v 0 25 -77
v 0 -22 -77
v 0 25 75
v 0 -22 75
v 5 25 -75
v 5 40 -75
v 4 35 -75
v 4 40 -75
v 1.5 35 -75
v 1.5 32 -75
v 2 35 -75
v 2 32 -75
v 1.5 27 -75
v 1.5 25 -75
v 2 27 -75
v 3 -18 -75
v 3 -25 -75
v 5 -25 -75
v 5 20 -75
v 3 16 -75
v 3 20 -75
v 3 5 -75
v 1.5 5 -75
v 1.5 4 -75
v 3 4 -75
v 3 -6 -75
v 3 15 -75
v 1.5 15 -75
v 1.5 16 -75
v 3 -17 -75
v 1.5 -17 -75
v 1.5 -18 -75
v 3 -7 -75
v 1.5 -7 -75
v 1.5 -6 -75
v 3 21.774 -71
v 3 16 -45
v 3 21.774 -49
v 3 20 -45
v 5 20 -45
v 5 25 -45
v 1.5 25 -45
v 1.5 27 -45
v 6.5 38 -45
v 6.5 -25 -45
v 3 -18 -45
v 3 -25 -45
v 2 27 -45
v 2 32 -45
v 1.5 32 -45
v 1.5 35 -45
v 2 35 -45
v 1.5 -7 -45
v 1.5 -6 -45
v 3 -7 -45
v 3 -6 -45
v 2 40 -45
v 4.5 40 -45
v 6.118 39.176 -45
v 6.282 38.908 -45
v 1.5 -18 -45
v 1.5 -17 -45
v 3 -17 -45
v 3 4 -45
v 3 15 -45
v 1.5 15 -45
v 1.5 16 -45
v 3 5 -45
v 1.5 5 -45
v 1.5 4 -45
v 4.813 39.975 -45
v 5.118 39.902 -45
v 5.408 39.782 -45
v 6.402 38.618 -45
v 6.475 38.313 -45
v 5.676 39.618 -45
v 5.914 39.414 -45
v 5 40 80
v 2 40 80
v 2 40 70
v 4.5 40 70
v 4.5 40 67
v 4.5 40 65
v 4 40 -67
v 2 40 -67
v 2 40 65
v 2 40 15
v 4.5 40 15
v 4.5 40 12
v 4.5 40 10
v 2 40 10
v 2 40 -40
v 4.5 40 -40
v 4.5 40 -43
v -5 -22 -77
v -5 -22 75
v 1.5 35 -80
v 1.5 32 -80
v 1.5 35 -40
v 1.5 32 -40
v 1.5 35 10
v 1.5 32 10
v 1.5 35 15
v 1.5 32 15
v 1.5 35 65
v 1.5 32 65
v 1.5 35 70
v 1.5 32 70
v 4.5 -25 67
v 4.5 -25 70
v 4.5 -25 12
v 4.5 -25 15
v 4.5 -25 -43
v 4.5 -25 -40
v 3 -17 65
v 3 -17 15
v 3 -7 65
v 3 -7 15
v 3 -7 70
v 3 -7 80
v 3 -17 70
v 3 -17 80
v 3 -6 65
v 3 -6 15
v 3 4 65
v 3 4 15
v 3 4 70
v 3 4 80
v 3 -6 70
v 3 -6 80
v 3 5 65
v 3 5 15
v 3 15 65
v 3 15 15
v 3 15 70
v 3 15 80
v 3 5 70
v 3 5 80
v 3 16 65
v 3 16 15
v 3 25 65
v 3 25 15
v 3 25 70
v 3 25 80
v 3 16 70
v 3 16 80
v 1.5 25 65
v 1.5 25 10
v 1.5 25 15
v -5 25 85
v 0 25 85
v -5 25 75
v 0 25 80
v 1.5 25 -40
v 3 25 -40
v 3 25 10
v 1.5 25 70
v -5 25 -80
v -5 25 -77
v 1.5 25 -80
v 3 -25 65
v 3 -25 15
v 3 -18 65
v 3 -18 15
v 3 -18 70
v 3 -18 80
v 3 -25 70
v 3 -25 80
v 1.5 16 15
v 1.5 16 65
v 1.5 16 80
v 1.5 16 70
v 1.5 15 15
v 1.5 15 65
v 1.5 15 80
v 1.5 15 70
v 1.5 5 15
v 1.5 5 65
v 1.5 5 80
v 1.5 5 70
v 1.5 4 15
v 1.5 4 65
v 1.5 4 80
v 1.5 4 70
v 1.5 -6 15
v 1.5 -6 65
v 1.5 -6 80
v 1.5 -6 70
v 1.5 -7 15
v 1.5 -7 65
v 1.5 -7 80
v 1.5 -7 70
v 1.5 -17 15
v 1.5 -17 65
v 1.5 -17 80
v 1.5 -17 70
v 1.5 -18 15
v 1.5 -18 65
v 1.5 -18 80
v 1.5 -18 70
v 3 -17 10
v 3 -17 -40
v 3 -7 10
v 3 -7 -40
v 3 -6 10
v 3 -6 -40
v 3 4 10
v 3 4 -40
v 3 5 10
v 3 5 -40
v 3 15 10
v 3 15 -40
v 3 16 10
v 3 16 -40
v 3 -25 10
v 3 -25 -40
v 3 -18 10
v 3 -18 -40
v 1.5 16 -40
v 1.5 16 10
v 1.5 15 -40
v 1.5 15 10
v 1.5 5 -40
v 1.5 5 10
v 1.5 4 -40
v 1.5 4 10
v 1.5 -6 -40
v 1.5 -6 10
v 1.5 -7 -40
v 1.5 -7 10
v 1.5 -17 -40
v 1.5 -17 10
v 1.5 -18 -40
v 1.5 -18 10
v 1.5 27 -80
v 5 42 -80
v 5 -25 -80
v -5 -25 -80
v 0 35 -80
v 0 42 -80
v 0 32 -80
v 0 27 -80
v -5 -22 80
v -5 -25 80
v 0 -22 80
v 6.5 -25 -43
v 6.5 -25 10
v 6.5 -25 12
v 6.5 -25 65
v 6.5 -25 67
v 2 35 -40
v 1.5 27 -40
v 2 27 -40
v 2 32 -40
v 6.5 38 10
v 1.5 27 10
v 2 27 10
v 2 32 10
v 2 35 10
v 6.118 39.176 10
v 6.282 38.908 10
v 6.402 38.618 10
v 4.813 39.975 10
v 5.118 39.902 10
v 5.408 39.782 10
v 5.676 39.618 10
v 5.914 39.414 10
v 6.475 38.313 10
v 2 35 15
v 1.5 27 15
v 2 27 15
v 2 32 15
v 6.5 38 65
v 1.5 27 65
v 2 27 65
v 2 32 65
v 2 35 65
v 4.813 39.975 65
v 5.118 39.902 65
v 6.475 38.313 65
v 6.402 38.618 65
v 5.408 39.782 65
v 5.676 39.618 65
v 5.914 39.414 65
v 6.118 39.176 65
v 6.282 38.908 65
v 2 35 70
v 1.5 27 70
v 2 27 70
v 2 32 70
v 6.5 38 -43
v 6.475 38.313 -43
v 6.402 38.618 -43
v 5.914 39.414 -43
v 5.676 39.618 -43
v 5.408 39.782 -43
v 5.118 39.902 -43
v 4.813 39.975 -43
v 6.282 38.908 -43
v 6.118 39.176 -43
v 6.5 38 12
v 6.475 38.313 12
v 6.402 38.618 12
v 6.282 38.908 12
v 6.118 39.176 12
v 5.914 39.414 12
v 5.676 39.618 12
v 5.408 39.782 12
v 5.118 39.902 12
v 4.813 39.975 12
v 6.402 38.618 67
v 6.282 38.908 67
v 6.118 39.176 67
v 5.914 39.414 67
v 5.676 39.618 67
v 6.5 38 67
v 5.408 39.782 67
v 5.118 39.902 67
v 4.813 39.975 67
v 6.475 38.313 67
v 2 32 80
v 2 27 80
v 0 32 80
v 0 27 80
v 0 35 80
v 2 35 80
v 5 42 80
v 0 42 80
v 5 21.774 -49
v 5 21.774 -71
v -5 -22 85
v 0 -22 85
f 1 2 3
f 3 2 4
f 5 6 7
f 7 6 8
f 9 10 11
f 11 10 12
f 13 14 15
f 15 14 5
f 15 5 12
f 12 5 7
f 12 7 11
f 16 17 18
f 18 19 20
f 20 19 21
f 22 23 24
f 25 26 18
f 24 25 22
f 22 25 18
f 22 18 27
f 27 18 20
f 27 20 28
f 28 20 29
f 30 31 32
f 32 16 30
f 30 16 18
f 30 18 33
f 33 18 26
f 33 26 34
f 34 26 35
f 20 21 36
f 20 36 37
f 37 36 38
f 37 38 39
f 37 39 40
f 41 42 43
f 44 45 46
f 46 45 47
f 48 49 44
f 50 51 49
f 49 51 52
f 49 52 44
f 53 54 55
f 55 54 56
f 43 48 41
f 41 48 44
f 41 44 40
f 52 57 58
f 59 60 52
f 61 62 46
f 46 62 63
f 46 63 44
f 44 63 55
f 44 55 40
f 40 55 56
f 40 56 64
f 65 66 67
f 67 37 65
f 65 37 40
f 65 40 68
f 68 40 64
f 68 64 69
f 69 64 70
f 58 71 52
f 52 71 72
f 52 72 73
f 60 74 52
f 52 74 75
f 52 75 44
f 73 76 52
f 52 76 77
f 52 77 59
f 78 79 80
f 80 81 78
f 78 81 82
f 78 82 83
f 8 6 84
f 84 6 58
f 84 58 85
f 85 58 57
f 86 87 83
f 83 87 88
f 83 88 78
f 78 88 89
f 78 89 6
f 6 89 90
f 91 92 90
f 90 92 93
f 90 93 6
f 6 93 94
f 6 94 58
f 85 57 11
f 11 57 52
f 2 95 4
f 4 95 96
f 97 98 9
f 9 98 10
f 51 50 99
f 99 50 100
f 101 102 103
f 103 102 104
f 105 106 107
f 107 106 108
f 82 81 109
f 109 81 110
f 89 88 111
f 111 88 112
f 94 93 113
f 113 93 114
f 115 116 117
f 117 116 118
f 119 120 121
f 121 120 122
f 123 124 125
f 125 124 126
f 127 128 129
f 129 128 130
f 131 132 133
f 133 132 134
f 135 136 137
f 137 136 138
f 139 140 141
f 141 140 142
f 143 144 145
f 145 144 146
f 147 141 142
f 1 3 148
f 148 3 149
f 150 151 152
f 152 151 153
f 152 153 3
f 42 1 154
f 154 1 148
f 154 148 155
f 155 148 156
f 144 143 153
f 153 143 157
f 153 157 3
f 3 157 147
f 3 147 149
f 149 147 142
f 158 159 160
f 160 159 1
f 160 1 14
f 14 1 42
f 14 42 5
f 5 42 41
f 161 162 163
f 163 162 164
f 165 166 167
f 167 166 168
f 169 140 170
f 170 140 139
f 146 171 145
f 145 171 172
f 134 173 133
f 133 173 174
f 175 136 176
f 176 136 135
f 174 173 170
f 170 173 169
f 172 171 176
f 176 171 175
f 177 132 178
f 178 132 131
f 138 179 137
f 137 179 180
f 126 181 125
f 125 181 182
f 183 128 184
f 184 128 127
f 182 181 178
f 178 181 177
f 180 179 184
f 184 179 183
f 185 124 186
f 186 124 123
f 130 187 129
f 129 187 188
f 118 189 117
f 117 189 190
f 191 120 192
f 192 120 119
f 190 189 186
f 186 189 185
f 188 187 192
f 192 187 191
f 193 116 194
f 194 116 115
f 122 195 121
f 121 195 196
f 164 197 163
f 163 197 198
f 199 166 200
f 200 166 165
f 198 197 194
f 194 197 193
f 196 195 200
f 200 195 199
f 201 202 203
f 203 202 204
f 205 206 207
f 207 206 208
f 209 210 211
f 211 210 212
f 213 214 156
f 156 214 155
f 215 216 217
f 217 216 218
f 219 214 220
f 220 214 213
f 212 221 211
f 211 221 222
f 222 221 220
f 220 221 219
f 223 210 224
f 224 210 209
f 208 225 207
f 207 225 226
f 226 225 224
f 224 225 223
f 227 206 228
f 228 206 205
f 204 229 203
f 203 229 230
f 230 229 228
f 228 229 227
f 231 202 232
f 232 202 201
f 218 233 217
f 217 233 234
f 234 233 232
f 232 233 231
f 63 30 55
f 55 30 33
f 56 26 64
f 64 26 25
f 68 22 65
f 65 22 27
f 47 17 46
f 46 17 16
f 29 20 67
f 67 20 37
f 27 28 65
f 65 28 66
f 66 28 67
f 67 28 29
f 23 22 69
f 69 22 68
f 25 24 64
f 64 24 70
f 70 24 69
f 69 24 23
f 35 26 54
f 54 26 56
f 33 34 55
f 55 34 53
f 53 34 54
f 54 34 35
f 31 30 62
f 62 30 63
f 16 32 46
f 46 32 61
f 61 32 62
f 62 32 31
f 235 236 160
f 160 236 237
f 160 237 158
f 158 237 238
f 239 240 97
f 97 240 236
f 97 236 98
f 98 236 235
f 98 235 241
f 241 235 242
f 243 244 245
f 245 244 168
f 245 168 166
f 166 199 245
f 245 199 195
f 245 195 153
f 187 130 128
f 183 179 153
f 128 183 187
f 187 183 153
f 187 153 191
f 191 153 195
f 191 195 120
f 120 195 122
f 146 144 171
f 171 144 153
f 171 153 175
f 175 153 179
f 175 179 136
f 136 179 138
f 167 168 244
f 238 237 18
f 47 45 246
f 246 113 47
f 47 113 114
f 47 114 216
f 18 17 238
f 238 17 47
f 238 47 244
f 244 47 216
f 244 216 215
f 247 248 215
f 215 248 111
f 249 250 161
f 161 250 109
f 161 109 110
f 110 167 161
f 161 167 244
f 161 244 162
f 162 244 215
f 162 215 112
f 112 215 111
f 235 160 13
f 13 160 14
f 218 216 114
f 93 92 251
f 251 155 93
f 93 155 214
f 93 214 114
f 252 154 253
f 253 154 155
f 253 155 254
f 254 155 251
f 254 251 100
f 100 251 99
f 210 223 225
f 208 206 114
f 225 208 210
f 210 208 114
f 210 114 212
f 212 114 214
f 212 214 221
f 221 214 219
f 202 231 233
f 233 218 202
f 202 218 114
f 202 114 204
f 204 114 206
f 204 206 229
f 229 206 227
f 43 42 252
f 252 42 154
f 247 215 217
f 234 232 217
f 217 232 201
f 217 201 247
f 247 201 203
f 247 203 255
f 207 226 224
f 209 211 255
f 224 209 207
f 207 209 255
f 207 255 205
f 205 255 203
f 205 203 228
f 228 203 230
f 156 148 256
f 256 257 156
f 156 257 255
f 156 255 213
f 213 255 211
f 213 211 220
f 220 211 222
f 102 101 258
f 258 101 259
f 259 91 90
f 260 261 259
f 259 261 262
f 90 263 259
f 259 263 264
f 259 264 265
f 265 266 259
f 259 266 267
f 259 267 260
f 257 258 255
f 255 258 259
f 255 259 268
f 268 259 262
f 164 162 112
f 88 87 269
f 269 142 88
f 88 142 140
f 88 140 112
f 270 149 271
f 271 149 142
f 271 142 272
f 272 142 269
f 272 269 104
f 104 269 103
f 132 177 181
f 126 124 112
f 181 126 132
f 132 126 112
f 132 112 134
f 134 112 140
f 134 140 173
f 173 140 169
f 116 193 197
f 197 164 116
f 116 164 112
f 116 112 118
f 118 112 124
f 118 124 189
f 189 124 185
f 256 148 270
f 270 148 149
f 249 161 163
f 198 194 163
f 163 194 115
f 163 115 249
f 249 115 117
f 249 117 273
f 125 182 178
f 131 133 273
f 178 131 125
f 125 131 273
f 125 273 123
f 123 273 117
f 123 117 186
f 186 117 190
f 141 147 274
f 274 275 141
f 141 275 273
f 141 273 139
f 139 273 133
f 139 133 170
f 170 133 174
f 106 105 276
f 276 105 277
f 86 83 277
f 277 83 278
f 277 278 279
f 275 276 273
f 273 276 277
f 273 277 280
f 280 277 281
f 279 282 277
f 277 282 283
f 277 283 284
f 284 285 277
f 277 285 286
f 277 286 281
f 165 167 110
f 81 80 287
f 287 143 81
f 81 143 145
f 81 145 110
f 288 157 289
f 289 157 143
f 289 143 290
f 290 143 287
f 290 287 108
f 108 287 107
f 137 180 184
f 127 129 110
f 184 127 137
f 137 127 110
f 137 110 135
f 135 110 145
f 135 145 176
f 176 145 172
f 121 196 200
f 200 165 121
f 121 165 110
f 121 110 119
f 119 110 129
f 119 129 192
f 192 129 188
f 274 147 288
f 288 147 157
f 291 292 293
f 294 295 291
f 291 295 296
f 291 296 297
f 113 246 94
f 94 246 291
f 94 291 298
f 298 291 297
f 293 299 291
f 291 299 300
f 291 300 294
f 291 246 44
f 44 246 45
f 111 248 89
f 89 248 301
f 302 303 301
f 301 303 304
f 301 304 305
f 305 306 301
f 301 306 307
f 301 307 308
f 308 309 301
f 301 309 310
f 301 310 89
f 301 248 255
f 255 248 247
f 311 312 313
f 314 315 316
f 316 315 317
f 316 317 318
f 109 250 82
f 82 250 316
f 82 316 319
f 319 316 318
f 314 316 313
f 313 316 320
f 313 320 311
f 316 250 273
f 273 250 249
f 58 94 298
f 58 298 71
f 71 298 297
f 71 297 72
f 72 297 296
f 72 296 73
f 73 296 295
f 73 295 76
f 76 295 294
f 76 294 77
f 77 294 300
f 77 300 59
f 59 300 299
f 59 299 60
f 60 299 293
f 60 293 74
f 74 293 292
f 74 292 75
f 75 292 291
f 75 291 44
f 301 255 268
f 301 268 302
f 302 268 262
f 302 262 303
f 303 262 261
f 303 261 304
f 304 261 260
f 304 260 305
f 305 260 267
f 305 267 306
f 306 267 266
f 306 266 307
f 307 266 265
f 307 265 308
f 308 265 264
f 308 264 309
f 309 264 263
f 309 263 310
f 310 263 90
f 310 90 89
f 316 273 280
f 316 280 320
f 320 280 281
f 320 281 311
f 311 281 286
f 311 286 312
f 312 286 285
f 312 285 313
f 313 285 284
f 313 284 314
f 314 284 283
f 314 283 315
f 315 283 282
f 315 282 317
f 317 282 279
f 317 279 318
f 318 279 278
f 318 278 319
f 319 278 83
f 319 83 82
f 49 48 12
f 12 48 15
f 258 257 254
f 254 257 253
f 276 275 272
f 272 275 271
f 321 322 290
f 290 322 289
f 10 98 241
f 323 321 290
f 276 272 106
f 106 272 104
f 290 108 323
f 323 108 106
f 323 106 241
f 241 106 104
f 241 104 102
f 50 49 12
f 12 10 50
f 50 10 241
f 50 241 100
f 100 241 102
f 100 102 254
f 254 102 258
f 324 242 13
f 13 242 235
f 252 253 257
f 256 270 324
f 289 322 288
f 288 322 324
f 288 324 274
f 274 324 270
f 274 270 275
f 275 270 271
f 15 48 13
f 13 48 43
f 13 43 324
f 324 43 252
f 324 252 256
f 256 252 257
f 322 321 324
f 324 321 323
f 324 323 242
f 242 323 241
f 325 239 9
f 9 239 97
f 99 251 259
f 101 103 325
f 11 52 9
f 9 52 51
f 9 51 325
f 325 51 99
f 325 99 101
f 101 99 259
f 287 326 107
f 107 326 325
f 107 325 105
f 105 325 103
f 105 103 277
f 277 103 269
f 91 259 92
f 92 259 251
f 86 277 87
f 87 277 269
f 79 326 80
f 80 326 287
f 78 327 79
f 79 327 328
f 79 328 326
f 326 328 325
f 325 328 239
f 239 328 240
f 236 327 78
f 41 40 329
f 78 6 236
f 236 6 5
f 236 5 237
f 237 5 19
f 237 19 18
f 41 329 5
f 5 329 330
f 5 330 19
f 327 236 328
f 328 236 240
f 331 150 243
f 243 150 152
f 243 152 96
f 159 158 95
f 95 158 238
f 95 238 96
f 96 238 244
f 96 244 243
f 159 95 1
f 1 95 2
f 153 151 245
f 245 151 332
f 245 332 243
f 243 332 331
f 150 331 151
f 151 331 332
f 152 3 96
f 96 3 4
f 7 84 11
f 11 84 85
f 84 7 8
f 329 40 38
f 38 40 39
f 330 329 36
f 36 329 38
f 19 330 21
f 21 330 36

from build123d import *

# Parameters (mm, degrees)
SKETCH1_W            = 160
SKETCH1_H            = 50
BOSS_EXTRUDE1_DEPTH  = 3
SKETCH2_W            = 160
SKETCH2_H            = 1
CUT_EXTRUDE1_DEPTH   = 1.5
SKETCH3_W            = 5
SKETCH3_H            = 65
BOSS_EXTRUDE2_DEPTH  = 1.5
SKETCH4_W            = 2
SKETCH4_H            = 65
BOSS_EXTRUDE3_DEPTH  = 2
FILLET1_R            = 2
SKETCH5_W            = 160
SKETCH5_H            = 5
BOSS_EXTRUDE4_DEPTH  = 2
SKETCH6_W            = 5
SKETCH6_H            = 160
BOSS_EXTRUDE5_DEPTH  = 2
SKETCH9_W            = 5
SKETCH9_H            = 65
BOSS_EXTRUDE8_DEPTH  = 0.5
SKETCH10_W           = 160
SKETCH10_H           = 3
BOSS_EXTRUDE9_DEPTH  = 5
SKETCH11_W           = 5
SKETCH11_H           = 3
BOSS_EXTRUDE10_DEPTH = 47
SKETCH13_W           = 10
SKETCH13_H           = 46.714659276
BOSS_EXTRUDE11_DEPTH = 5
BOSS_EXTRUDE12_DEPTH = 2
BOSS_EXTRUDE13_DEPTH = 2
BOSS_EXTRUDE14_DEPTH = 0.285341


with BuildPart() as part:
    # Sketch1 → Boss-Extrude1 (new body)
    with BuildSketch(Plane(origin=(0, 0, 0), x_dir=(0, 0, -1), z_dir=(1, 0, 0))):
        Rectangle(SKETCH1_W, SKETCH1_H)
    extrude(amount=BOSS_EXTRUDE1_DEPTH)

    # Sketch2 → Cut-Extrude1 (cut)
    with BuildSketch(Plane(origin=(3, 0, 0), x_dir=(0, 0, -1), z_dir=(1, 0, 0))):
        with Locations((0, -17.5)):
            Rectangle(SKETCH2_W, SKETCH2_H)
        with Locations((0, -6.5)):
            Rectangle(SKETCH2_W, SKETCH2_H)
        with Locations((0, 4.5)):
            Rectangle(SKETCH2_W, SKETCH2_H)
        with Locations((0, 15.5)):
            Rectangle(SKETCH2_W, SKETCH2_H)
    extrude(amount=-CUT_EXTRUDE1_DEPTH, mode=Mode.SUBTRACT)

    # Sketch3 → Boss-Extrude2 (add, symmetric)
    with BuildSketch(Plane(origin=(3, 0, 0), x_dir=(0, 0, -1), z_dir=(1, 0, 0))):
        with Locations((77.5, 7.5)):
            Rectangle(SKETCH3_W, SKETCH3_H)
        with Locations((42.5, 7.5)):
            Rectangle(SKETCH3_W, SKETCH3_H)
        with Locations((-12.5, 7.5)):
            Rectangle(SKETCH3_W, SKETCH3_H)
        with Locations((-67.5, 7.5)):
            Rectangle(SKETCH3_W, SKETCH3_H)
    extrude(amount=BOSS_EXTRUDE2_DEPTH, both=True)

    # Sketch4 → Boss-Extrude3 (add)
    with BuildSketch(Plane(origin=(4.5, 0, 0), x_dir=(0, 0, -1), z_dir=(1, 0, 0))):
        with Locations((44, 7.5)):
            Rectangle(SKETCH4_W, SKETCH4_H)
        with Locations((-11, 7.5)):
            Rectangle(SKETCH4_W, SKETCH4_H)
        with Locations((-66, 7.5)):
            Rectangle(SKETCH4_W, SKETCH4_H)
    extrude(amount=BOSS_EXTRUDE3_DEPTH)

    # Fillet1
    fillet1_edges = [part.edges().sort_by_distance(p)[0] for p in [
        (6.5, 40, -44),
        (6.5, 40, 11),
        (6.5, 40, 66),
    ]]
    fillet(fillet1_edges, radius=FILLET1_R)

    # Sketch5 → Boss-Extrude4 (add)
    with BuildSketch(Plane.ZY):
        with Locations((0, 29.5)):
            Rectangle(SKETCH5_W, SKETCH5_H)
        with Locations((0, 37.5)):
            Rectangle(SKETCH5_W, SKETCH5_H)
    extrude(amount=-BOSS_EXTRUDE4_DEPTH)

    # Sketch6 → Boss-Extrude5 (add)
    with BuildSketch(Plane(origin=(0, 40, 0), x_dir=(1, 0, 0), z_dir=(0, 1, 0))):
        with Locations((2.5, 0)):
            Rectangle(SKETCH6_W, SKETCH6_H)
    extrude(amount=BOSS_EXTRUDE5_DEPTH)

    # Sketch9 → Boss-Extrude8 (add)
    with BuildSketch(Plane(origin=(4.5, 0, 0), x_dir=(0, 0, -1), z_dir=(1, 0, 0))):
        with Locations((77.5, 7.5)):
            Rectangle(SKETCH9_W, SKETCH9_H)
    extrude(amount=BOSS_EXTRUDE8_DEPTH)

    # Sketch10 → Boss-Extrude9 (add)
    with BuildSketch(Plane.ZY):
        with Locations((0, -23.5)):
            Rectangle(SKETCH10_W, SKETCH10_H)
    extrude(amount=BOSS_EXTRUDE9_DEPTH)

    # Sketch11 → Boss-Extrude10 (add)
    with BuildSketch(Plane(origin=(0, -22, 0), x_dir=(1, 0, 0), z_dir=(0, 1, 0))):
        with Locations((-2.5, 78.5)):
            Rectangle(SKETCH11_W, SKETCH11_H)
    extrude(amount=BOSS_EXTRUDE10_DEPTH)

    # Sketch13 → Boss-Extrude11 (add)
    with BuildSketch(Plane.ZY):
        with Locations((80, 1.357329638)):
            Rectangle(SKETCH13_W, SKETCH13_H)
    extrude(amount=BOSS_EXTRUDE11_DEPTH)

    # Sketch14 → Boss-Extrude12 (add)
    with BuildSketch(Plane(origin=(2, 0, 0), x_dir=(0, 0, -1), z_dir=(1, 0, 0))):
        Polygon((75, 40), (75, 35), (67, 40), align=None)
    extrude(amount=BOSS_EXTRUDE12_DEPTH)

    # Sketch15 → Boss-Extrude13 (add)
    with BuildSketch(Plane(origin=(3, 0, 0), x_dir=(0, 0, -1), z_dir=(1, 0, 0))):
        Polygon((75, 25), (45, 25), (45, 20), (49, 21.77425237), (71, 21.77425237), (75, 20), align=None)
    extrude(amount=BOSS_EXTRUDE13_DEPTH)

    # Sketch16 → Boss-Extrude14 (add)
    with BuildSketch(Plane(origin=(0, 24.714659276, 0), x_dir=(1, 0, 0), z_dir=(0, 1, 0))):
        Polygon((0, -75), (-5, -75), (-5, -85), (0, -85), (0, -80), align=None)
    extrude(amount=BOSS_EXTRUDE14_DEPTH)


solid = part.part
